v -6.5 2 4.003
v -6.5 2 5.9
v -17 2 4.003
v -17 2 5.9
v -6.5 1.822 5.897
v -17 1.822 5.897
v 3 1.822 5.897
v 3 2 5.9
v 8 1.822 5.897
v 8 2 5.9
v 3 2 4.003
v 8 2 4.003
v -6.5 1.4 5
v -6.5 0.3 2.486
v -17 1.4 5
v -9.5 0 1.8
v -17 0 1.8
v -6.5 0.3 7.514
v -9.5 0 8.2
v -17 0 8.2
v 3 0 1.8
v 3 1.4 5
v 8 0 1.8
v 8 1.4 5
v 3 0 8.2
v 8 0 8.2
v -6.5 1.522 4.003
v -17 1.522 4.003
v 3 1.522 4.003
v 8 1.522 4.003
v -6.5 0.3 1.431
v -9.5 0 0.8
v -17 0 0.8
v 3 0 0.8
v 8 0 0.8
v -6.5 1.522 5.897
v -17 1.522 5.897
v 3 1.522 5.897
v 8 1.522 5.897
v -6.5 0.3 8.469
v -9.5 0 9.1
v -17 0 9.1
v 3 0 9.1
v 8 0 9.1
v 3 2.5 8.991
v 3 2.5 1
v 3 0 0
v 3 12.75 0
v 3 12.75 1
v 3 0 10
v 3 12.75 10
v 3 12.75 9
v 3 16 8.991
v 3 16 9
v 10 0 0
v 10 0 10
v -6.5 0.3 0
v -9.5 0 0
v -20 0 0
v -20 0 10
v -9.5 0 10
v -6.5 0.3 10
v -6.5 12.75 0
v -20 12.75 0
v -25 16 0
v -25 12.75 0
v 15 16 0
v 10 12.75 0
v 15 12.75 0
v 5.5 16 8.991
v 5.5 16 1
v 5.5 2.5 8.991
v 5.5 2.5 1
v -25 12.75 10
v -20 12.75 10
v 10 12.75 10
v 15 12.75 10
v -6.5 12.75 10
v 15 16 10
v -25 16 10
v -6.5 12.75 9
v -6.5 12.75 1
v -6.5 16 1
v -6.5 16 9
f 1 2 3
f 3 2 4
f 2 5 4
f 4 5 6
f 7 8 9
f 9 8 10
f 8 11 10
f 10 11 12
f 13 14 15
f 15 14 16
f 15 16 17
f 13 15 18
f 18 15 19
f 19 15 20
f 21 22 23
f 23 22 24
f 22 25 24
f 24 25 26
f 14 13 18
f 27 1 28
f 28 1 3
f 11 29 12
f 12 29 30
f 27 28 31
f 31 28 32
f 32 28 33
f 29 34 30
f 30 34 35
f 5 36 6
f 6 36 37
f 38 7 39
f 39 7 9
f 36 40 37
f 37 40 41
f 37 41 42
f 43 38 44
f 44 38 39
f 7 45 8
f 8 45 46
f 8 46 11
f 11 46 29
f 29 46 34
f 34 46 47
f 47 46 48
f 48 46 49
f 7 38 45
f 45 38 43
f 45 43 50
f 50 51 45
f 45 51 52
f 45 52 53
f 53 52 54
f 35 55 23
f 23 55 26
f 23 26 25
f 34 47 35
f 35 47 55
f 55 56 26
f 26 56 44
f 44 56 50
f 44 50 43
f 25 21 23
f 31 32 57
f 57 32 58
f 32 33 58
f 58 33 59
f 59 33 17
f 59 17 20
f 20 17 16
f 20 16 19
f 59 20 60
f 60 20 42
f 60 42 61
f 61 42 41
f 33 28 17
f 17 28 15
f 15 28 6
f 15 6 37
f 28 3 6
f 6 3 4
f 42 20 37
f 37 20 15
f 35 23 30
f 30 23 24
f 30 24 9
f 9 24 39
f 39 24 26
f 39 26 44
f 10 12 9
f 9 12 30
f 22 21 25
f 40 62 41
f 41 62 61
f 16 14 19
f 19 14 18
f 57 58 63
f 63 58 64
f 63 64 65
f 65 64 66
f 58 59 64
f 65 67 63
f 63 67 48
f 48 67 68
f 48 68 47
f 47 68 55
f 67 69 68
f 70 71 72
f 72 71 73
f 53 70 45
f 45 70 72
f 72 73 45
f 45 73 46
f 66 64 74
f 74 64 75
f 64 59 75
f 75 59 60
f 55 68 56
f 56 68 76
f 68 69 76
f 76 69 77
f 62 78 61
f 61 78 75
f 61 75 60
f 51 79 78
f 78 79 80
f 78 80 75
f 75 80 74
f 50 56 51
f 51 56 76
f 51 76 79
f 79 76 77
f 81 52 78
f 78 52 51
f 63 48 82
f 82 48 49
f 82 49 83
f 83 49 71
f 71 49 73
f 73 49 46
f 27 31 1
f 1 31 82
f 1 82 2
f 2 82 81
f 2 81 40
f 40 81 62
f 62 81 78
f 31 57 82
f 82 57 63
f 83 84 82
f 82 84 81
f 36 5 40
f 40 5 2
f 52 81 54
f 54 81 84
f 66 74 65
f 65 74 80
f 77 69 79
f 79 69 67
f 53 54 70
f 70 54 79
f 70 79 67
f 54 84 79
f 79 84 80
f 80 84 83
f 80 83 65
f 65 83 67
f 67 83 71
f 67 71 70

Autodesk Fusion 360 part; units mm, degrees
sketch "Sketch1" plane through (0, 0, 0) normal (0, 1, 0) x (1, 0, 0)
  line L0 (-25, 0) -> (15, 0)
  line L1 (15, 0) -> (15, -10)
  line L2 (15, -10) -> (-25, -10)
  line L3 (-25, -10) -> (-25, 0)
  dimension "d1" = 40
  dimension "d2" = 10
extrude "Extrude1" add sketch "Sketch1" along normal blind 16
sketch "Sketch2" plane through (0, 16, 0) normal (0, 1, 0) x (-1, 0, 0)
  line L0 (25, 10) -> (-15, 10)
  line L1 (-15, 10) -> (-15, 0)
  line L2 (-15, 0) -> (25, 0)
  line L3 (25, 0) -> (25, 10)
  line L4 (-15, 10) -> (-3, 10)
  line L5 (-3, 10) -> (-3, 9)
  line L6 (-3, 9) -> (6.5, 9)
  line L7 (6.5, 9) -> (6.5, 1)
  line L8 (6.5, 1) -> (-3, 1)
  line L9 (-3, 1) -> (-3, 9)
  dimension "d5" = 12
  dimension "d6" = 9.5
  dimension "d7" = 8
extrude "Extrude2" cut sketch "Sketch2" against normal blind 50 contours L6 L7 L8 L9
sketch "Sketch3" plane through (0, 0, 10) normal (0, 0, 1) x (1, 0, 0)
  line L0 (-25, 0) -> (15, 0)
  line L1 (15, 0) -> (15, 16)
  line L2 (15, 16) -> (-25, 16)
  line L3 (-25, 16) -> (-25, 0)
  line L4 (15, 16) -> (3, 16)
  line L5 (3, 16) -> (3, 12.75)
  line L6 (3, 12.75) -> (-6.5, 12.75)
  line L7 (-6.5, 12.75) -> (-6.5, 16)
  line L8 (-6.5, 16) -> (3, 16)
  line L9 (3, 16) -> (3, 12.75)
  line L10 (-6.5, 12.75) -> (3, 12.75)
  line L11 (3, 12.75) -> (3, -1)
  line L12 (3, -1) -> (-6.5, -1)
  line L13 (-6.5, -1) -> (-6.5, 12.75)
  dimension "d10" = 12
  dimension "d11" = 3.25
  dimension "d12" = 9.5
extrude "Extrude3" cut sketch "Sketch3" against normal blind 50 contours L0 L6 L10 L11 L13
sketch "Sketch4" plane through (0, 0, 10) normal (0, 0, 1) x (1, 0, 0)
  line L0 (-6.5, 0) -> (-6.5, 12.75)
  line L1 (-6.5, 12.75) -> (3, 12.75)
  line L2 (3, 12.75) -> (3, 0)
  line L3 (3, 0) -> (15, 0)
  line L4 (15, 0) -> (15, 16)
  line L5 (15, 16) -> (-25, 16)
  line L6 (-25, 16) -> (-25, 0)
  line L7 (-25, 0) -> (-6.5, 0)
  line L8 (-25, 12.75) -> (-20, 12.75)
  line L9 (-20, 12.75) -> (-20, -3.5611)
  line L10 (-20, -3.5611) -> (-25, -3.5611)
  line L11 (-25, -3.5611) -> (-25, 12.75)
  line L12 (15, 12.75) -> (10, 12.75)
  line L13 (10, 12.75) -> (10, -3.5611)
  line L14 (10, -3.5611) -> (15, -3.5611)
  line L15 (15, -3.5611) -> (15, 12.75)
  dimension "d15" = 5
  dimension "d16" = 5
extrude "Extrude4" cut sketch "Sketch4" against normal blind 50 contours L7 L9 L10 L11 | L6 L7 L8 L9 L11 | L3 L4 L12 L13 L15 | L3 L13 L14 L15
sketch "Sketch5" plane through (0, 16, 0) normal (0, 1, 0) x (-1, 0, 0)
  line L0 (6.5, 9) -> (6.5, 1)
  line L1 (6.5, 1) -> (-3, 1)
  line L2 (-3, 1) -> (-3, 9)
  line L3 (-3, 9) -> (6.5, 9)
  line L4 (25, 10) -> (-15, 10)
  line L5 (-15, 10) -> (-15, 0)
  line L6 (-15, 0) -> (25, 0)
  line L7 (25, 0) -> (25, 10)
  line L8 (-3, 1) -> (-5.5, 1)
  line L9 (-5.5, 1) -> (-5.5, 8.9913)
  line L10 (-5.5, 8.9913) -> (-3, 8.9913)
  line L11 (-3, 8.9913) -> (-3, 1)
  dimension "d19" = 2.5
extrude "Extrude5" cut sketch "Sketch5" against normal blind 13.5 contours L2 L8 L9 L10 L11
sketch "Sketch6" plane through (0, 0, 10) normal (0, 0, 1) x (1, 0, 0)
  line L0 (-25, 12.75) -> (-20, 12.75)
  line L1 (-20, 12.75) -> (-20, 0)
  line L2 (-20, 0) -> (-6.5, 0)
  line L3 (-6.5, 0) -> (-6.5, 12.75)
  line L4 (-6.5, 12.75) -> (3, 12.75)
  line L5 (3, 12.75) -> (3, 0)
  line L6 (3, 0) -> (10, 0)
  line L7 (10, 0) -> (10, 12.75)
  line L8 (10, 12.75) -> (15, 12.75)
  line L9 (15, 12.75) -> (15, 16)
  line L10 (15, 16) -> (-25, 16)
  line L11 (-25, 16) -> (-25, 12.75)
  line L12 (-6.5, 0) -> (-6.5, 0.3)
  line L13 (-6.5, 0) -> (-9.5, 0)
  line L14 (-9.5, 0) -> (-6.5, 0.3)
  dimension "d22" = 0.3
  dimension "d23" = 3
extrude "Extrude6" cut sketch "Sketch6" against normal blind 50 contours L2 L3 L12 L13 L14
sketch "Sketch7" plane through (3, 0, 0) normal (-1, 0, 0) x (0, 0, 1)
  line L0 (8.9913, 16) -> (8.9913, 2.5)
  line L1 (8.9913, 2.5) -> (1, 2.5)
  line L2 (1, 2.5) -> (1, 12.75)
  line L3 (1, 12.75) -> (0, 12.75)
  line L4 (0, 12.75) -> (0, 0)
  line L5 (0, 0) -> (10, 0)
  line L6 (10, 0) -> (10, 12.75)
  line L7 (10, 12.75) -> (9, 12.75)
  line L8 (9, 12.75) -> (9, 16)
  line L9 (9, 16) -> (8.9913, 16)
  line L10 (10, 0) -> (8.2, 0)
  line L11 (8.2, 0) -> (8.85, 0)
  line L12 (8.85, 0) -> (5.6472, 1.5221)
  line L13 (8.85, 0) -> (12.3961, 0) construction
  line L14 (5.6472, 1.5221) -> (4.9972, 1.5221)
  line L15 (4.9972, 1.5221) -> (8.2, 0)
  line L16 (0, 0) -> (1.8, 0)
  line L17 (1.8, 0) -> (1.15, 0)
  line L18 (1.15, 0) -> (4.3528, 1.5221)
  line L19 (4.3528, 1.5221) -> (5.0028, 1.5221)
  line L20 (4.9972, 1.5221) -> (1.8, 0)
  line L21 (4.3528, 1.5221) -> (5.6, 1.5221)
  line L22 (5.6, 1.5221) -> (5.6, 1.7721)
  line L23 (5.6, 1.7721) -> (4.3528, 1.7721)
  line L24 (4.3528, 1.7721) -> (4.3528, 1.5221)
  dimension "d26" = 1.8
  dimension "d27" = 0.65
  dimension "d28" = 154.581
  dimension "d29" = 3.5461
  dimension "d30" = 0.65
  dimension "d31" = 1.8
  dimension "d32" = 0.65
  dimension "d33" = 3.5461
  dimension "d34" = 25.419
  dimension "d35" = 0.65
  dimension "d36" = 0.25
extrude "Extrude7" cut sketch "Sketch7" along normal blind 20 and the other way blind 5 contours L5 L10 L11 L12 L14 L15 L19 L21 | L5 L16 L17 L18 L19 L20 L21 | L14 L19 L21 L22 L23 L24
sketch "Sketch8" plane through (3, 0, 0) normal (-1, 0, 0) x (0, 0, 1)
  line L0 (5.6472, 1.5221) -> (8.85, 0)
  line L1 (8.85, 0) -> (10, 0)
  line L2 (10, 0) -> (10, 12.75)
  line L3 (10, 12.75) -> (9, 12.75)
  line L4 (9, 12.75) -> (9, 16)
  line L5 (9, 16) -> (8.9913, 16)
  line L6 (8.9913, 16) -> (8.9913, 2.5)
  line L7 (8.9913, 2.5) -> (1, 2.5)
  line L8 (1, 2.5) -> (1, 12.75)
  line L9 (1, 12.75) -> (0, 12.75)
  line L10 (0, 12.75) -> (0, 0)
  line L11 (0, 0) -> (1.15, 0)
  line L12 (1.15, 0) -> (4.3528, 1.5221)
  line L13 (4.3528, 1.5221) -> (4.3528, 1.7721)
  line L14 (4.3528, 1.7721) -> (5.6, 1.7721)
  line L15 (5.6, 1.7721) -> (5.6, 1.5221)
  line L16 (5.6, 1.5221) -> (5.6472, 1.5221)
  line L17 (5.6, 1.5221) -> (8.85, 0)
  line L18 (8.85, 0) -> (8.95, 0)
  line L19 (5.6, 1.5221) -> (5.7, 1.5221)
  line L20 (5.7, 1.5221) -> (8.95, 0)
  line L21 (1.15, 0) -> (1.05, 0)
  line L22 (1.15, 0) -> (4.3528, 1.5221)
  line L23 (4.3528, 1.5221) -> (4.2528, 1.5221)
  line L24 (4.2528, 1.5221) -> (1.05, 0)
  line L25 (4.1564, 1.7721) -> (5.7264, 1.7721)
  line L26 (5.7264, 1.7721) -> (5.7264, 1.5221)
  line L27 (5.7264, 1.5221) -> (4.1564, 1.5221)
  line L28 (4.1564, 1.5221) -> (4.1564, 1.7721)
  dimension "d41" = 0.1
  dimension "d42" = 0.1
  dimension "d43" = 0.1
  dimension "d44" = 0.25
extrude "Extrude8" cut sketch "Sketch8" along normal blind 20 and the other way blind 5 contours L0 L16 L17 L19 L27 | L15 L16 L19 L25 L26 L27 | L13 L14 L15 L25 L27 | L13 L23 L25 L27 L28 | L11 L12 L21 L22 L23 L24 L27
sketch "Sketch9" plane through (3, 0, 0) normal (-1, 0, 0) x (0, 0, 1)
  line L0 (1.05, 0) -> (4.2528, 1.5221)
  line L1 (4.2528, 1.5221) -> (4.1564, 1.5221)
  line L2 (4.1564, 1.5221) -> (4.1564, 1.7721)
  line L3 (4.1564, 1.7721) -> (5.7264, 1.7721)
  line L4 (5.7264, 1.7721) -> (5.7264, 1.5221)
  line L5 (5.7264, 1.5221) -> (5.6472, 1.5221)
  line L6 (5.6472, 1.5221) -> (8.85, 0)
  line L7 (8.85, 0) -> (10, 0)
  line L8 (10, 0) -> (10, 12.75)
  line L9 (10, 12.75) -> (9, 12.75)
  line L10 (9, 12.75) -> (9, 16)
  line L11 (9, 16) -> (8.9913, 16)
  line L12 (8.9913, 16) -> (8.9913, 2.5)
  line L13 (8.9913, 2.5) -> (1, 2.5)
  line L14 (1, 2.5) -> (1, 12.75)
  line L15 (1, 12.75) -> (0, 12.75)
  line L16 (0, 12.75) -> (0, 0)
  line L17 (0, 0) -> (1.05, 0)
  line L18 (1.05, 0) -> (0.8, 0)
  line L19 (4.2528, 1.5221) -> (4.0028, 1.5221)
  line L20 (4.0028, 1.5221) -> (0.8, 0)
  line L21 (1.05, 0) -> (4.2528, 1.5221)
  line L22 (8.85, 0) -> (9.1, 0)
  line L23 (5.6472, 1.5221) -> (5.8972, 1.5221)
  line L24 (5.8972, 1.5221) -> (9.1, 0)
  line L25 (8.85, 0) -> (5.6472, 1.5221)
  line L26 (4.0028, 1.5221) -> (5.8972, 1.5221)
  line L27 (5.8972, 1.5221) -> (5.8972, 1.8221)
  line L28 (5.8972, 1.8221) -> (4.0028, 1.8221)
  line L29 (4.0028, 1.8221) -> (4.0028, 1.5221)
  dimension "d49" = 0.25
  dimension "d50" = 0.25
  dimension "d51" = 0.25
  dimension "d52" = 0.3
extrude "Extrude9" cut sketch "Sketch9" along normal blind 20 and the other way blind 5 contours L0 L1 L17 L18 L19 L20 L21 L26 | L1 L2 L3 L4 L5 L19 L23 L26 | L2 L3 L4 L19 L23 L26 L27 L28 L29 | L5 L6 L7 L22 L23 L24 L25 L26
sketch "Sketch10" plane through (3, 0, 0) normal (-1, 0, 0) x (0, 0, 1)
  line L0 (0.8, 0) -> (4.0028, 1.5221)
  line L1 (4.0028, 1.5221) -> (4.0028, 1.8221)
  line L2 (4.0028, 1.8221) -> (5.8972, 1.8221)
  line L3 (5.8972, 1.8221) -> (5.8972, 1.5221)
  line L4 (5.8972, 1.5221) -> (9.1, 0)
  line L5 (9.1, 0) -> (10, 0)
  line L6 (10, 0) -> (10, 12.75)
  line L7 (10, 12.75) -> (9, 12.75)
  line L8 (9, 12.75) -> (9, 16)
  line L9 (9, 16) -> (8.9913, 16)
  line L10 (8.9913, 16) -> (8.9913, 2.5)
  line L11 (8.9913, 2.5) -> (1, 2.5)
  line L12 (1, 2.5) -> (1, 12.75)
  line L13 (1, 12.75) -> (0, 12.75)
  line L14 (0, 12.75) -> (0, 0)
  line L15 (0, 0) -> (0.8, 0)
  line L16 (1.8, 0) -> (5, 1.4019)
  line L17 (1.8, 0) -> (5.2936, 0) construction
  line L18 (8.2, 0) -> (5, 1.4019)
  line L19 (8.2, 0) -> (11.6936, 0) construction
  line L20 (8.2, 0) -> (8.2, 0.2)
  line L21 (8.2, 0.2) -> (4.9, 1.7)
  line L22 (4.9, 1.7) -> (1.4, 0)
  line L23 (1.4, 0) -> (1.8, 0)
  line L24 (4.0028, 1.8221) -> (4.0028, 2)
  line L25 (4.0028, 2) -> (5.9, 2)
  line L26 (5.8972, 1.8221) -> (5.9, 2)
  line L27 (5.8972, 1.8221) -> (4.0028, 1.8221)
  dimension "d57" = 23.658
  dimension "d58" = 3.4936
  dimension "d59" = 156.342
  dimension "d60" = 3.4936
sketch "Sketch11" plane through (3, 0, 0) normal (-1, 0, 0) x (0, 0, 1)
sketch "Sketch12" plane through (3, 0, 0) normal (-1, 0, 0) x (0, 0, 1)
  line L0 (8.2, 0) -> (4.9972, 1.5221)
  line L1 (4.9972, 1.5221) -> (1.8, 0)
  line L2 (1.8, 0) -> (8.2, 0)
  line L3 (1.8, 0) -> (4.9972, 1.5221)
  line L4 (4.9972, 1.5221) -> (8.2, 0)
  line L5 (8.2, 0) -> (5, 1.4)
  line L6 (5, 1.4) -> (1.8, 0)
extrude "Extrude10" cut sketch "Sketch10" sketch "Sketch12" along normal blind 20 and the other way blind 5 contours L2 L24 L25 L26 L27 of sketch 2 contours L0 L1 L3 L4 L5 L6
